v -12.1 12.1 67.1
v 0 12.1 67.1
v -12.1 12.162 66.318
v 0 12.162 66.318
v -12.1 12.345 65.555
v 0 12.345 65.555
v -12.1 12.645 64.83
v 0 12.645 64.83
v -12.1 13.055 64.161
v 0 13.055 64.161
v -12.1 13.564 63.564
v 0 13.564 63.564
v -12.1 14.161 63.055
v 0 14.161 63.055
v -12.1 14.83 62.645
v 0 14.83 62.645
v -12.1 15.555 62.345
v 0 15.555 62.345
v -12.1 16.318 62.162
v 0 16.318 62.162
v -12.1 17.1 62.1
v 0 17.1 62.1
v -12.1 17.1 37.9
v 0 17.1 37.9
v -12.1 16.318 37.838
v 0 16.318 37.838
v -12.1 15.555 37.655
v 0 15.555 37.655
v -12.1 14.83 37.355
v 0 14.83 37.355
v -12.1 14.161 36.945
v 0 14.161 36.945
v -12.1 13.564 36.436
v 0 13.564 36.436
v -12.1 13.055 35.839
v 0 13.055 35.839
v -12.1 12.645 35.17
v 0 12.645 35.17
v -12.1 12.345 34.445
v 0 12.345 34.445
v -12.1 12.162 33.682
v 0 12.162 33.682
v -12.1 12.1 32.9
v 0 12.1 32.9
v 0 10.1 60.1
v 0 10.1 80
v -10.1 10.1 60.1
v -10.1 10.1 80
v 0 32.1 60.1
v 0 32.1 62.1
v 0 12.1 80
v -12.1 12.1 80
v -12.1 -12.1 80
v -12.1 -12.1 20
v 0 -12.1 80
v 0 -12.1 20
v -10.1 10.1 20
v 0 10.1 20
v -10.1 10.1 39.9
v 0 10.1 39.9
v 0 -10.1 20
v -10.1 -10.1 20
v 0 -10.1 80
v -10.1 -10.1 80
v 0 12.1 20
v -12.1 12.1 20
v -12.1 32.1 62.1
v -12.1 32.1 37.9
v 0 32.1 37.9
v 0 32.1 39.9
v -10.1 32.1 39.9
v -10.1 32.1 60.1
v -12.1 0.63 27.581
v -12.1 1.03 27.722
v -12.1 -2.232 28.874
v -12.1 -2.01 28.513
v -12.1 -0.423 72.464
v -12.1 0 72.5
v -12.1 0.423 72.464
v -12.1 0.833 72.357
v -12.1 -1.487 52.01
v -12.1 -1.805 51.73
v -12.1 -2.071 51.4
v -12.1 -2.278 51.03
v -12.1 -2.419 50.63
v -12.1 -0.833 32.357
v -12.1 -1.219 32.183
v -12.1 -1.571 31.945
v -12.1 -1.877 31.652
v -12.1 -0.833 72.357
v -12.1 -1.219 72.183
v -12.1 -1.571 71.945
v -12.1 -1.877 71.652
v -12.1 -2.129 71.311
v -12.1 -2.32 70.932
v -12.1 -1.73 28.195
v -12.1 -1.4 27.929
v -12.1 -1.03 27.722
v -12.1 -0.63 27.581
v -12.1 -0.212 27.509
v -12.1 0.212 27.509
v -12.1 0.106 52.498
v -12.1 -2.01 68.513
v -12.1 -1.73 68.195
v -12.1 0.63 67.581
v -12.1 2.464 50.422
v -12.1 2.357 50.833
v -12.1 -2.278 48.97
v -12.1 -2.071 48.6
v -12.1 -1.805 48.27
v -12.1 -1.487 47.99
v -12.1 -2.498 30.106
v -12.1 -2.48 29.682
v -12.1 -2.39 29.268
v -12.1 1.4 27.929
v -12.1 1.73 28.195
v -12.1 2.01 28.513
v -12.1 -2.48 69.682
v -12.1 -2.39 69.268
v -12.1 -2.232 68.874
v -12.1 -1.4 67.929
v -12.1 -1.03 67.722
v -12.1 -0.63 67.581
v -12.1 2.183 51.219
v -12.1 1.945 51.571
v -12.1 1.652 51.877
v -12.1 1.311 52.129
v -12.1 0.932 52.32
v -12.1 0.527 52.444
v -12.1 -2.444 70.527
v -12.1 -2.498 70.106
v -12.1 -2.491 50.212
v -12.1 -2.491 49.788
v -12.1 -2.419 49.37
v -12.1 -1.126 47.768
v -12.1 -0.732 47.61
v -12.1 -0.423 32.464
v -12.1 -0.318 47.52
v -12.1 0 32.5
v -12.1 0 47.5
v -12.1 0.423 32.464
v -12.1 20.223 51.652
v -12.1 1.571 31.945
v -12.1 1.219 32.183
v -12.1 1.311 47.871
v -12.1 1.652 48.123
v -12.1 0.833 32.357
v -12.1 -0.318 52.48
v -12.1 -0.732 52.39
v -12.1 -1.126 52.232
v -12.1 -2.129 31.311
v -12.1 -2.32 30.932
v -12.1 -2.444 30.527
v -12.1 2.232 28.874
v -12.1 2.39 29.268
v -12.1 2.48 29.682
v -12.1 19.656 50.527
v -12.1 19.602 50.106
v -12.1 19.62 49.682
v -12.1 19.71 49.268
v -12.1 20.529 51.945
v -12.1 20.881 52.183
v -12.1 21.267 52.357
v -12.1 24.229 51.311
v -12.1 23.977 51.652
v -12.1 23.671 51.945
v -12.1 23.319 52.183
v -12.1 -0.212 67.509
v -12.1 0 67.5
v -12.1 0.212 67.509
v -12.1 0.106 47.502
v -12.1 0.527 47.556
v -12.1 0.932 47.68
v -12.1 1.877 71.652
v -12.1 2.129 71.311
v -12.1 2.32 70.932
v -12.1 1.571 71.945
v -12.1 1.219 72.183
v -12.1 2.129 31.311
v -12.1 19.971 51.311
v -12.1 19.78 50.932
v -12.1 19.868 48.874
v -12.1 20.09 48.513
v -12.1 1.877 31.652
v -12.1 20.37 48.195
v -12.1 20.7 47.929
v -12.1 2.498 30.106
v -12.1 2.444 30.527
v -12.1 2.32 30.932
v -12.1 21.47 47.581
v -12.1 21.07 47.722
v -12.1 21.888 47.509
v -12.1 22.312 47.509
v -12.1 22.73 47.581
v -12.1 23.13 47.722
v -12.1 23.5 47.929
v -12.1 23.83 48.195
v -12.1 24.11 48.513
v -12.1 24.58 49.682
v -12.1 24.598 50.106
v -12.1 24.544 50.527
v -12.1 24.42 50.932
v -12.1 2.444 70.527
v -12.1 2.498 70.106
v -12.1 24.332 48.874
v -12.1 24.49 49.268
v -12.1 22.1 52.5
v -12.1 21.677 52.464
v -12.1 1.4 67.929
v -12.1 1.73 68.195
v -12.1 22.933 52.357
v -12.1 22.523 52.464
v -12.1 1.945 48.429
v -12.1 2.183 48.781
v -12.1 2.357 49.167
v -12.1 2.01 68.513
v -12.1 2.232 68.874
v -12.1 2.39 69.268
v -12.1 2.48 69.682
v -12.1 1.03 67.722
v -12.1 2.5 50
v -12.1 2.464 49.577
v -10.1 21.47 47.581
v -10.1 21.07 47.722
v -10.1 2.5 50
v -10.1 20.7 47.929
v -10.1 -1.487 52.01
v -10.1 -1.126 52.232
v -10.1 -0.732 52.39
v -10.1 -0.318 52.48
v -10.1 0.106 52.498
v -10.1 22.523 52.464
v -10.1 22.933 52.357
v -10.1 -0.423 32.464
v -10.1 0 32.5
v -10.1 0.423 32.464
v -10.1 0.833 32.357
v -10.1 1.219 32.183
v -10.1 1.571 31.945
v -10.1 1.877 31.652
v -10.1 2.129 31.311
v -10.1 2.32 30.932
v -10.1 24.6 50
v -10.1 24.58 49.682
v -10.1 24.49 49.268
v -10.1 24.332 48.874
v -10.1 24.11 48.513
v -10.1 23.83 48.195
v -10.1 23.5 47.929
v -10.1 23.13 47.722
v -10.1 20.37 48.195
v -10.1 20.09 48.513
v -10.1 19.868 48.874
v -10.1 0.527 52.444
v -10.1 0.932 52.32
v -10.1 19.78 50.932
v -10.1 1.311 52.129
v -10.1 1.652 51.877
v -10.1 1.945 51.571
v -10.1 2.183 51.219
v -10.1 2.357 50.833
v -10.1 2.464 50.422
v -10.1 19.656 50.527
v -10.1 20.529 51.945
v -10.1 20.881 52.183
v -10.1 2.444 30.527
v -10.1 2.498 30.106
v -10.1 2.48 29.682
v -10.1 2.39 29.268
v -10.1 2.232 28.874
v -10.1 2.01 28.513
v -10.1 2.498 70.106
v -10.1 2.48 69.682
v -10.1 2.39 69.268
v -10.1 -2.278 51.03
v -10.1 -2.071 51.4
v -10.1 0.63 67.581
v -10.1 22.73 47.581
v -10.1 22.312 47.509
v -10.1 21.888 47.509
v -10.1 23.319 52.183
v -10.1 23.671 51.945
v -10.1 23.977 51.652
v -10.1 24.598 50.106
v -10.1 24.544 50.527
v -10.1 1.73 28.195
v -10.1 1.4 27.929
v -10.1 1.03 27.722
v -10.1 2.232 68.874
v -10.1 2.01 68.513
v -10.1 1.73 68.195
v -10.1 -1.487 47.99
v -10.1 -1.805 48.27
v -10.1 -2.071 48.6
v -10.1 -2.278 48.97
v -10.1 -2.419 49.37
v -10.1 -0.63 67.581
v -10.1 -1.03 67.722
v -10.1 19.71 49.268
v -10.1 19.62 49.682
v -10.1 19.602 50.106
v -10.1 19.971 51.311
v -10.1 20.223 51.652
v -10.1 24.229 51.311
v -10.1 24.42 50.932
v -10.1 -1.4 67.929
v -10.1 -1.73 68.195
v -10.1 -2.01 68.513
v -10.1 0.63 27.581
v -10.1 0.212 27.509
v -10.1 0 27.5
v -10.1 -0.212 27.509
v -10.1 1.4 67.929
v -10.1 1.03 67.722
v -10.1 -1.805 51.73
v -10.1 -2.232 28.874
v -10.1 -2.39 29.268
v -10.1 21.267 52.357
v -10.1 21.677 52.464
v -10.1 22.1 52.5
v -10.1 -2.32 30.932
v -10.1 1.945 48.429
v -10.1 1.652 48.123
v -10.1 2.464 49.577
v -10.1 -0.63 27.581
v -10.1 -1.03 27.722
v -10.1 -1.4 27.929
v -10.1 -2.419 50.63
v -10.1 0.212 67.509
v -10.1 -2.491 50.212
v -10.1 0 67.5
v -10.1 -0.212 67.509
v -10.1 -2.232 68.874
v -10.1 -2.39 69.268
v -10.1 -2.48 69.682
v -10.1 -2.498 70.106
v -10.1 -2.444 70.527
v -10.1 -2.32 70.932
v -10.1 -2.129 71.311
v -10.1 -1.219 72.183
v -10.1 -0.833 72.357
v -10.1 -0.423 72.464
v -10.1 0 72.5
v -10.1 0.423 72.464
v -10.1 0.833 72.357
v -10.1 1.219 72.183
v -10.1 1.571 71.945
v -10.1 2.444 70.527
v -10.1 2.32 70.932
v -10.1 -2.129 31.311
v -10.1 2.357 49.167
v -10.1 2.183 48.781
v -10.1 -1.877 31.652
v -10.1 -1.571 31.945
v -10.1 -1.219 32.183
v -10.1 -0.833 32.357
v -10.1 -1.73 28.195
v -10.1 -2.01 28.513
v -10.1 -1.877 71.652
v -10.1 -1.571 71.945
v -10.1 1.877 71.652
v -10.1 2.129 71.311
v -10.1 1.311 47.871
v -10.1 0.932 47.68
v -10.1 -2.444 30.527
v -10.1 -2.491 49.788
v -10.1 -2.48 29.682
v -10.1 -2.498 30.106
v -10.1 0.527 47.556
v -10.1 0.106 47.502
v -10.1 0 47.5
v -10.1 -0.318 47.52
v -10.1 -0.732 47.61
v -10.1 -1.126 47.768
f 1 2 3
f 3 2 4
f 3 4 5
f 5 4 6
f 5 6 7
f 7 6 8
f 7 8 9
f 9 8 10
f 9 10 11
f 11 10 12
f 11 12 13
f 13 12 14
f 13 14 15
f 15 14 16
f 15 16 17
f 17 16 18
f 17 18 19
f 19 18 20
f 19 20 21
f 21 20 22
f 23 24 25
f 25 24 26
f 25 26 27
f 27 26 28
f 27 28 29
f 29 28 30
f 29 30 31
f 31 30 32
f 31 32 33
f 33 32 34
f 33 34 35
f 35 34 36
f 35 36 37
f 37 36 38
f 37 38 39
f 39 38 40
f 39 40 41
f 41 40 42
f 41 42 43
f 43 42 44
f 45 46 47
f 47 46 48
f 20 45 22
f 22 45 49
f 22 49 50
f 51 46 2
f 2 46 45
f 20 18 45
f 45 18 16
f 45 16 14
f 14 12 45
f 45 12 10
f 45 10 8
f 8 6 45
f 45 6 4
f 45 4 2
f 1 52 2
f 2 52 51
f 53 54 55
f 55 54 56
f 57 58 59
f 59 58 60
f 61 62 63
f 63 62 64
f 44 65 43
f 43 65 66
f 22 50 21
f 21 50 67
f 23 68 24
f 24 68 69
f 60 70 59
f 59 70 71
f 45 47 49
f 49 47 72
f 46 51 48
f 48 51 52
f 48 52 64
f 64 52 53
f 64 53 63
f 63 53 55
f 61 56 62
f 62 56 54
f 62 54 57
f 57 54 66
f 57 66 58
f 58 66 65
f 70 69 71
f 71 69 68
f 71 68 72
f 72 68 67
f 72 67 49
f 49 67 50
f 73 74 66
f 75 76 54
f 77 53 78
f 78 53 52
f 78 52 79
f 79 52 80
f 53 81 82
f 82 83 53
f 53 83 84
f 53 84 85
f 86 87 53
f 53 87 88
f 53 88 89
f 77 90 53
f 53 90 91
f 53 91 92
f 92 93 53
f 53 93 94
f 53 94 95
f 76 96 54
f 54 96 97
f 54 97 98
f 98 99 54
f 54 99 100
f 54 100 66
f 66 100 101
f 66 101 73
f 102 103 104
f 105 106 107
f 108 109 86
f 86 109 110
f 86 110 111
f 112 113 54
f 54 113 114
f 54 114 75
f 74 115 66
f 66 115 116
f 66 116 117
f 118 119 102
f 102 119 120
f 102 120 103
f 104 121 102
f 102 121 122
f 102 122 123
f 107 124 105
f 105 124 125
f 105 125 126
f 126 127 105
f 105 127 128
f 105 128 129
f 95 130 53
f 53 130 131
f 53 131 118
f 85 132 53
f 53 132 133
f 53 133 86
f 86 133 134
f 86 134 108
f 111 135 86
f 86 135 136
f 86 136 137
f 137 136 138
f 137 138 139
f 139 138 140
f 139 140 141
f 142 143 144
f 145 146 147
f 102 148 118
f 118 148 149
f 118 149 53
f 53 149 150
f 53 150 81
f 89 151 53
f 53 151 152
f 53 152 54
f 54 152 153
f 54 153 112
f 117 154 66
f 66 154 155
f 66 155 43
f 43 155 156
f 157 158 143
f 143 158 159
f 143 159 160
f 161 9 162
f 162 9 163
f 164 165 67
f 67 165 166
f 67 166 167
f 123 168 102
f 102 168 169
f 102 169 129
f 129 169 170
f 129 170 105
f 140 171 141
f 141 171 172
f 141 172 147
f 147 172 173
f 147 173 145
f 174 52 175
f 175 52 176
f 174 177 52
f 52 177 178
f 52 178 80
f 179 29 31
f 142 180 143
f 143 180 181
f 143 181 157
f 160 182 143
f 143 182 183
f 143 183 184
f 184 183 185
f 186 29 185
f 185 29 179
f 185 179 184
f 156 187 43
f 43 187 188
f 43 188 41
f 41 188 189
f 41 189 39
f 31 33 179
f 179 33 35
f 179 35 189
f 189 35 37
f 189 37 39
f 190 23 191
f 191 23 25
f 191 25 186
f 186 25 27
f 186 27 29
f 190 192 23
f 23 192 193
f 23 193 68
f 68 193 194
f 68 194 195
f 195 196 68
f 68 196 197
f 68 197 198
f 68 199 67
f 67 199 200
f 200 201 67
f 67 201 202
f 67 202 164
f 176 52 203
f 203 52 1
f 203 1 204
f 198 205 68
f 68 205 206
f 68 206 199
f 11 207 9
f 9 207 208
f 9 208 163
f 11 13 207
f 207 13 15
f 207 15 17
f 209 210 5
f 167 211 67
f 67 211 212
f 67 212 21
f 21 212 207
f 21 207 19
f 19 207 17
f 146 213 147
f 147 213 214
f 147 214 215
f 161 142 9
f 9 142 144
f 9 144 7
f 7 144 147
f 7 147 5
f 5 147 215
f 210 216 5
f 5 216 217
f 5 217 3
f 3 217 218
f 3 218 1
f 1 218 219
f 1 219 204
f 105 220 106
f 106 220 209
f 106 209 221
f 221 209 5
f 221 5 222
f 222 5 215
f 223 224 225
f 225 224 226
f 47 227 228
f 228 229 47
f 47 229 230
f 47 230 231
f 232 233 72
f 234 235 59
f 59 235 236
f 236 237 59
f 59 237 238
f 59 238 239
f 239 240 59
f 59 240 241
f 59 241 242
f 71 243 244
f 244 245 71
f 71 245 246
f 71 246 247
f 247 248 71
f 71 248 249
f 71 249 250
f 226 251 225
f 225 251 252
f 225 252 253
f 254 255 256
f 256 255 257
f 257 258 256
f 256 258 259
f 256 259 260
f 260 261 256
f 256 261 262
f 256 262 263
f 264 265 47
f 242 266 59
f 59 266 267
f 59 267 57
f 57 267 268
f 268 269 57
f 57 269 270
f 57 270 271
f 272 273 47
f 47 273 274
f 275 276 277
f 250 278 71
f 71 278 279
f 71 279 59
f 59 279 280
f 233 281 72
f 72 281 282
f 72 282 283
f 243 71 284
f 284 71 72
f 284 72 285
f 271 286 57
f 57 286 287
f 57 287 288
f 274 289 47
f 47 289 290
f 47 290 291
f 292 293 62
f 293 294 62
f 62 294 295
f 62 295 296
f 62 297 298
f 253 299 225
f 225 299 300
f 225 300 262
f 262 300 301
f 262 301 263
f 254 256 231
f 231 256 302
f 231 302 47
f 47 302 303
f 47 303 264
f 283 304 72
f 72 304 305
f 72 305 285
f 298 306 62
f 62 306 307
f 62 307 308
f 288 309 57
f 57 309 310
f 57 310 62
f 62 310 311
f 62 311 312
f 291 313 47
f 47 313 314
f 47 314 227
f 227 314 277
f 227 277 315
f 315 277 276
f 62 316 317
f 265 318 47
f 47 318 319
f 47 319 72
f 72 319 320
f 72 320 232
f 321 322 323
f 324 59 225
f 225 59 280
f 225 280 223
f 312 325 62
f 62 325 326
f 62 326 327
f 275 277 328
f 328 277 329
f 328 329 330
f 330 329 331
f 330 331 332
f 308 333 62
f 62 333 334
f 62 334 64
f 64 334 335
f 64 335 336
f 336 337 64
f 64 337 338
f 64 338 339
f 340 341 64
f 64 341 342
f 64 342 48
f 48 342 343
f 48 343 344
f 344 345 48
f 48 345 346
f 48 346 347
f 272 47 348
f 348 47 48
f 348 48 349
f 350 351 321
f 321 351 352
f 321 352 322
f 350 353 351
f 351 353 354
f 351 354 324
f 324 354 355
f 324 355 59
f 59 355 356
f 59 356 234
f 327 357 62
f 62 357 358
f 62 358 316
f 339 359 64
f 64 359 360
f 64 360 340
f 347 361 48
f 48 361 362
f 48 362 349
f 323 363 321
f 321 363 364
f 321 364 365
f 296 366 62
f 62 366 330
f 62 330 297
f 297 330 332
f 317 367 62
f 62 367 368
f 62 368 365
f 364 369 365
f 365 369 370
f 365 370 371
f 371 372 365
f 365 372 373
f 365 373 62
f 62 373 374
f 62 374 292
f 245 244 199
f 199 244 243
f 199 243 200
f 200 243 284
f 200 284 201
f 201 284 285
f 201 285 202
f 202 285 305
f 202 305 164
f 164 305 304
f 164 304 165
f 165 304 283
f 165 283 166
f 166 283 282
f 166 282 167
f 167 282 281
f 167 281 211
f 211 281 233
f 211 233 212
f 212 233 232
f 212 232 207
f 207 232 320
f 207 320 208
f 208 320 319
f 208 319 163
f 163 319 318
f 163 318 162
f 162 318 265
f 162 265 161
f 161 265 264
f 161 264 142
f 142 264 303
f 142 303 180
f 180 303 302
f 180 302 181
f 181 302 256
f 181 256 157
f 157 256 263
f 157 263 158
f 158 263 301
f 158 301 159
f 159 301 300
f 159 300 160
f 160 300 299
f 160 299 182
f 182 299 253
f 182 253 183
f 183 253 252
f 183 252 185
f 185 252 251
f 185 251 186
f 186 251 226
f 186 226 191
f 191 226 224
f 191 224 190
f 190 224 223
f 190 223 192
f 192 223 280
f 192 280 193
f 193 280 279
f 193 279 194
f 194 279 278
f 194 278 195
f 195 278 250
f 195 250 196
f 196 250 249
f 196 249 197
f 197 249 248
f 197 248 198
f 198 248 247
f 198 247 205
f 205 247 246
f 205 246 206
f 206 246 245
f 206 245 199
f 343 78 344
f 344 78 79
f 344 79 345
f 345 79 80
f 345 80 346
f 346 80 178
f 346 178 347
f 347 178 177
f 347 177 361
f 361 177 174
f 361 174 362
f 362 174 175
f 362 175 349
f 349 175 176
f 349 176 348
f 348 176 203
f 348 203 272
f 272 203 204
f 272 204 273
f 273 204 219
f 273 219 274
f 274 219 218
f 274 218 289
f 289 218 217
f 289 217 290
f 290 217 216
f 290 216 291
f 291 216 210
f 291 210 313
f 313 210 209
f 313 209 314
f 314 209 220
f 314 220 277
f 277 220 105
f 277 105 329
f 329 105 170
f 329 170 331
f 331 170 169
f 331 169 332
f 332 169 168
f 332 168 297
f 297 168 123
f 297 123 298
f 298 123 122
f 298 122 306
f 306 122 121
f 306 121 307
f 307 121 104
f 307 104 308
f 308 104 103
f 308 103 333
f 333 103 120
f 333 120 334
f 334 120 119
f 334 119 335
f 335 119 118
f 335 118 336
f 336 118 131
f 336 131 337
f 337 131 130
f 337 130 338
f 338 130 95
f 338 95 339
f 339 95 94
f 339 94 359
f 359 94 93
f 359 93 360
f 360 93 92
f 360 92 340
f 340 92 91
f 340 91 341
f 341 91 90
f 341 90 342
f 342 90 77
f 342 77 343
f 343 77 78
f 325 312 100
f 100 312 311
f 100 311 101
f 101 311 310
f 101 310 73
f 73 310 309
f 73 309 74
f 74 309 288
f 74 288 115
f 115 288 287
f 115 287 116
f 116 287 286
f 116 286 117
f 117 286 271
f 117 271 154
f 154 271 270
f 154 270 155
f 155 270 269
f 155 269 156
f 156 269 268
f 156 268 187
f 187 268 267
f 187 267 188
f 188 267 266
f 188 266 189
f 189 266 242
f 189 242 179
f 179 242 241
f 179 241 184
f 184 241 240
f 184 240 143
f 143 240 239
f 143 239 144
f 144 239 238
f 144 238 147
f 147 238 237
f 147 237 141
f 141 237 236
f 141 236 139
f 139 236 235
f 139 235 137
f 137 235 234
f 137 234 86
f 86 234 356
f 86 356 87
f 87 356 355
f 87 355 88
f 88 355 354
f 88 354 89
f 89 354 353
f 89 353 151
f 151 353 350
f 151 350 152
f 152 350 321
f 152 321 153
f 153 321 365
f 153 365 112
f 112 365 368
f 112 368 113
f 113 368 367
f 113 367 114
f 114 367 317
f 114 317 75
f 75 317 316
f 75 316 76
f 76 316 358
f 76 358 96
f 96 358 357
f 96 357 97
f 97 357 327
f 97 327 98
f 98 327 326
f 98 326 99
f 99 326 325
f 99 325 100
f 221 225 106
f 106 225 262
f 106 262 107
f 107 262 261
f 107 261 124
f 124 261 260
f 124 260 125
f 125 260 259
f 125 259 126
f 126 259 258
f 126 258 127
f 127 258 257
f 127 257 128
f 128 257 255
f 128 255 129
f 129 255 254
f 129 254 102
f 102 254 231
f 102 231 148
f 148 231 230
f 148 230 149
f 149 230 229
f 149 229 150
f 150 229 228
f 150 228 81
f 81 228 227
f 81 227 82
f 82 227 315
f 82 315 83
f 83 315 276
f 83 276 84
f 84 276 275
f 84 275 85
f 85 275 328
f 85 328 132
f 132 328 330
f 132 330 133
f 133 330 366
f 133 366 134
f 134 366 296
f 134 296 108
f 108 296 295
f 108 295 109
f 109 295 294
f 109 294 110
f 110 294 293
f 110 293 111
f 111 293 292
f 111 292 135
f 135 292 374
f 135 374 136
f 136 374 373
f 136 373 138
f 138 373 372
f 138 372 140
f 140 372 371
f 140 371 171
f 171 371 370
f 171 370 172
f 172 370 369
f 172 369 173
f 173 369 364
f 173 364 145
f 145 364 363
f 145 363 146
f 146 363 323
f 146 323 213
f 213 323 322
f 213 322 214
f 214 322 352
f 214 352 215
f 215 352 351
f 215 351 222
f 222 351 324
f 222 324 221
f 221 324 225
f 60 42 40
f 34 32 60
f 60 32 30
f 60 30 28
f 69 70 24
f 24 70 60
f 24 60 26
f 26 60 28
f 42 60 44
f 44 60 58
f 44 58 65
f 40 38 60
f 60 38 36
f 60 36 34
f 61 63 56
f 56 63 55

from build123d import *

# Parameters (mm, degrees)
SKETCH_2_W          = 24.2
SKETCH_2_H          = 24.2
SKETCH_2_W_2        = 20.2
SKETCH_2_H_2        = 20.2
EXTRUDE_4_DEPTH     = 100
SKETCH_6_W          = 24.2
SKETCH_6_H          = 24.2
SKETCH_6_W_2        = 20.2
SKETCH_6_H_2        = 20.2
EXTRUDE_5_DEPTH     = 40
SKETCH_7_R          = 2.5
CUT_EXTRUDE_1_DEPTH = 40
SKETCH_8_R          = 2.5
CUT_EXTRUDE_2_DEPTH = 40
CUT_EXTRUDE_START   = -40
SKETCH_9_W          = 20
SKETCH_9_H          = 24.2
SKETCH_9_R          = 2.5
CUT_EXTRUDE_3_DEPTH = 40
SKETCH_10_W         = 24.2
SKETCH_10_H         = 20
SKETCH_10_R         = 2.5
CUT_EXTRUDE_4_DEPTH = 40
SKETCH_11_W         = 69.821202151
SKETCH_11_H         = 48.665955669
CUT_EXTRUDE_5_DEPTH = 12.1
SKETCH_12_W         = 20.2
SKETCH_12_H         = 2
CUT_EXTRUDE_6_DEPTH = 10
SKETCH_13_W         = 20.2
SKETCH_13_H         = 2
CUT_EXTRUDE_7_DEPTH = 0.1
FILLET_1_R          = 5
FILLET_2_R          = 5


with BuildPart() as part:
    # 草图2 → 凸台-拉伸4 (new body)
    with BuildSketch(Plane.XY):
        Rectangle(SKETCH_2_W, SKETCH_2_H)
        Rectangle(SKETCH_2_W_2, SKETCH_2_H_2, mode=Mode.SUBTRACT)
    extrude(amount=EXTRUDE_4_DEPTH)

    # 草图6 → 凸台-拉伸5 (add)
    with BuildSketch(Plane(origin=(0, 12.1, 0), x_dir=(1, 0, 0), z_dir=(0, 1, 0))):
        with Locations((0, -50)):
            Rectangle(SKETCH_6_W, SKETCH_6_H)
        with Locations((0, -50)):
            Rectangle(SKETCH_6_W_2, SKETCH_6_H_2, mode=Mode.SUBTRACT)
    extrude(amount=EXTRUDE_5_DEPTH)

    # 草图7 → 切除-拉伸1 (cut)
    with BuildSketch(Plane.ZY.offset(12.1)):
        with Locations((10, 0)):
            Circle(SKETCH_7_R)
        with Locations((30, 0)):
            Circle(SKETCH_7_R)
        with Locations(Location((90, 0, 0), (0, 0, 180))):
            Circle(SKETCH_7_R)
        with Locations(Location((70, 0, 0), (0, 0, 180))):
            Circle(SKETCH_7_R)
        with Locations((50, 42.1)):
            Circle(SKETCH_7_R)
        with Locations((50, 22.1)):
            Circle(SKETCH_7_R)
    extrude(amount=-CUT_EXTRUDE_1_DEPTH, mode=Mode.SUBTRACT)

    # 草图8 → 切除-拉伸2 (cut)
    with BuildSketch(Plane(origin=(12.1, 0, 0), x_dir=(0, 0, -1), z_dir=(1, 0, 0))):
        with Locations((-50, 0)):
            Circle(SKETCH_8_R)
    extrude(amount=-CUT_EXTRUDE_2_DEPTH, mode=Mode.SUBTRACT)

    # 草图9 → 切除-拉伸3 (cut)
    # profile 1 of 2: a face of its own
    with BuildSketch(Plane(origin=(12.1, 0, 0), x_dir=(0, 0, -1), z_dir=(1, 0, 0)).offset(CUT_EXTRUDE_START)):
        with Locations((-10, 0)):
            Rectangle(SKETCH_9_W, SKETCH_9_H)
        with Locations((-10, 0)):
            Circle(SKETCH_9_R, mode=Mode.SUBTRACT)
    # profile 2 of 2: a face of its own
    with BuildSketch(Plane(origin=(12.1, 0, 0), x_dir=(0, 0, -1), z_dir=(1, 0, 0)).offset(CUT_EXTRUDE_START)):
        with Locations((-90, 0)):
            Rectangle(SKETCH_9_W, SKETCH_9_H)
        with Locations((-90, 0)):
            Circle(SKETCH_9_R, mode=Mode.SUBTRACT)
    extrude(amount=CUT_EXTRUDE_3_DEPTH, mode=Mode.SUBTRACT)

    # 草图10 → 切除-拉伸4 (cut)
    with BuildSketch(Plane(origin=(12.1, 0, 0), x_dir=(0, 0, -1), z_dir=(1, 0, 0)).offset(CUT_EXTRUDE_START)):
        with Locations((-50, 42.1)):
            Rectangle(SKETCH_10_W, SKETCH_10_H)
        with Locations((-50, 42.1)):
            Circle(SKETCH_10_R, mode=Mode.SUBTRACT)
    extrude(amount=CUT_EXTRUDE_4_DEPTH, mode=Mode.SUBTRACT)

    # 草图11 → 切除-拉伸5 (cut)
    with BuildSketch(Plane(origin=(12.1, 0, 0), x_dir=(0, 0, -1), z_dir=(1, 0, 0))):
        with Locations((-50.999985391, 8.600020454)):
            Rectangle(SKETCH_11_W, SKETCH_11_H)
    extrude(amount=-CUT_EXTRUDE_5_DEPTH, mode=Mode.SUBTRACT)

    # 草图12 → 切除-拉伸6 (cut)
    with BuildSketch(Plane(origin=(0, 0, 0), x_dir=(0, 0, -1), z_dir=(1, 0, 0))):
        with Locations((-50, 11.1)):
            Rectangle(SKETCH_12_W, SKETCH_12_H)
    extrude(amount=-CUT_EXTRUDE_6_DEPTH, mode=Mode.SUBTRACT)

    # 草图13 → 切除-拉伸7 (cut)
    with BuildSketch(Plane(origin=(-10, 0, 0), x_dir=(0, 0, -1), z_dir=(1, 0, 0))):
        with Locations((-50, 11.1)):
            Rectangle(SKETCH_13_W, SKETCH_13_H)
    extrude(amount=-CUT_EXTRUDE_7_DEPTH, mode=Mode.SUBTRACT)

    # 圆角1
    fillet_1_edges = [part.edges().sort_by_distance(p)[0] for p in [
        (-6.05, 12.1, 37.9),
    ]]
    fillet(fillet_1_edges, radius=FILLET_1_R)

    # 圆角2
    fillet_2_edges = [part.edges().sort_by_distance(p)[0] for p in [
        (-6.05, 12.1, 62.1),
    ]]
    fillet(fillet_2_edges, radius=FILLET_2_R)


solid = part.part
